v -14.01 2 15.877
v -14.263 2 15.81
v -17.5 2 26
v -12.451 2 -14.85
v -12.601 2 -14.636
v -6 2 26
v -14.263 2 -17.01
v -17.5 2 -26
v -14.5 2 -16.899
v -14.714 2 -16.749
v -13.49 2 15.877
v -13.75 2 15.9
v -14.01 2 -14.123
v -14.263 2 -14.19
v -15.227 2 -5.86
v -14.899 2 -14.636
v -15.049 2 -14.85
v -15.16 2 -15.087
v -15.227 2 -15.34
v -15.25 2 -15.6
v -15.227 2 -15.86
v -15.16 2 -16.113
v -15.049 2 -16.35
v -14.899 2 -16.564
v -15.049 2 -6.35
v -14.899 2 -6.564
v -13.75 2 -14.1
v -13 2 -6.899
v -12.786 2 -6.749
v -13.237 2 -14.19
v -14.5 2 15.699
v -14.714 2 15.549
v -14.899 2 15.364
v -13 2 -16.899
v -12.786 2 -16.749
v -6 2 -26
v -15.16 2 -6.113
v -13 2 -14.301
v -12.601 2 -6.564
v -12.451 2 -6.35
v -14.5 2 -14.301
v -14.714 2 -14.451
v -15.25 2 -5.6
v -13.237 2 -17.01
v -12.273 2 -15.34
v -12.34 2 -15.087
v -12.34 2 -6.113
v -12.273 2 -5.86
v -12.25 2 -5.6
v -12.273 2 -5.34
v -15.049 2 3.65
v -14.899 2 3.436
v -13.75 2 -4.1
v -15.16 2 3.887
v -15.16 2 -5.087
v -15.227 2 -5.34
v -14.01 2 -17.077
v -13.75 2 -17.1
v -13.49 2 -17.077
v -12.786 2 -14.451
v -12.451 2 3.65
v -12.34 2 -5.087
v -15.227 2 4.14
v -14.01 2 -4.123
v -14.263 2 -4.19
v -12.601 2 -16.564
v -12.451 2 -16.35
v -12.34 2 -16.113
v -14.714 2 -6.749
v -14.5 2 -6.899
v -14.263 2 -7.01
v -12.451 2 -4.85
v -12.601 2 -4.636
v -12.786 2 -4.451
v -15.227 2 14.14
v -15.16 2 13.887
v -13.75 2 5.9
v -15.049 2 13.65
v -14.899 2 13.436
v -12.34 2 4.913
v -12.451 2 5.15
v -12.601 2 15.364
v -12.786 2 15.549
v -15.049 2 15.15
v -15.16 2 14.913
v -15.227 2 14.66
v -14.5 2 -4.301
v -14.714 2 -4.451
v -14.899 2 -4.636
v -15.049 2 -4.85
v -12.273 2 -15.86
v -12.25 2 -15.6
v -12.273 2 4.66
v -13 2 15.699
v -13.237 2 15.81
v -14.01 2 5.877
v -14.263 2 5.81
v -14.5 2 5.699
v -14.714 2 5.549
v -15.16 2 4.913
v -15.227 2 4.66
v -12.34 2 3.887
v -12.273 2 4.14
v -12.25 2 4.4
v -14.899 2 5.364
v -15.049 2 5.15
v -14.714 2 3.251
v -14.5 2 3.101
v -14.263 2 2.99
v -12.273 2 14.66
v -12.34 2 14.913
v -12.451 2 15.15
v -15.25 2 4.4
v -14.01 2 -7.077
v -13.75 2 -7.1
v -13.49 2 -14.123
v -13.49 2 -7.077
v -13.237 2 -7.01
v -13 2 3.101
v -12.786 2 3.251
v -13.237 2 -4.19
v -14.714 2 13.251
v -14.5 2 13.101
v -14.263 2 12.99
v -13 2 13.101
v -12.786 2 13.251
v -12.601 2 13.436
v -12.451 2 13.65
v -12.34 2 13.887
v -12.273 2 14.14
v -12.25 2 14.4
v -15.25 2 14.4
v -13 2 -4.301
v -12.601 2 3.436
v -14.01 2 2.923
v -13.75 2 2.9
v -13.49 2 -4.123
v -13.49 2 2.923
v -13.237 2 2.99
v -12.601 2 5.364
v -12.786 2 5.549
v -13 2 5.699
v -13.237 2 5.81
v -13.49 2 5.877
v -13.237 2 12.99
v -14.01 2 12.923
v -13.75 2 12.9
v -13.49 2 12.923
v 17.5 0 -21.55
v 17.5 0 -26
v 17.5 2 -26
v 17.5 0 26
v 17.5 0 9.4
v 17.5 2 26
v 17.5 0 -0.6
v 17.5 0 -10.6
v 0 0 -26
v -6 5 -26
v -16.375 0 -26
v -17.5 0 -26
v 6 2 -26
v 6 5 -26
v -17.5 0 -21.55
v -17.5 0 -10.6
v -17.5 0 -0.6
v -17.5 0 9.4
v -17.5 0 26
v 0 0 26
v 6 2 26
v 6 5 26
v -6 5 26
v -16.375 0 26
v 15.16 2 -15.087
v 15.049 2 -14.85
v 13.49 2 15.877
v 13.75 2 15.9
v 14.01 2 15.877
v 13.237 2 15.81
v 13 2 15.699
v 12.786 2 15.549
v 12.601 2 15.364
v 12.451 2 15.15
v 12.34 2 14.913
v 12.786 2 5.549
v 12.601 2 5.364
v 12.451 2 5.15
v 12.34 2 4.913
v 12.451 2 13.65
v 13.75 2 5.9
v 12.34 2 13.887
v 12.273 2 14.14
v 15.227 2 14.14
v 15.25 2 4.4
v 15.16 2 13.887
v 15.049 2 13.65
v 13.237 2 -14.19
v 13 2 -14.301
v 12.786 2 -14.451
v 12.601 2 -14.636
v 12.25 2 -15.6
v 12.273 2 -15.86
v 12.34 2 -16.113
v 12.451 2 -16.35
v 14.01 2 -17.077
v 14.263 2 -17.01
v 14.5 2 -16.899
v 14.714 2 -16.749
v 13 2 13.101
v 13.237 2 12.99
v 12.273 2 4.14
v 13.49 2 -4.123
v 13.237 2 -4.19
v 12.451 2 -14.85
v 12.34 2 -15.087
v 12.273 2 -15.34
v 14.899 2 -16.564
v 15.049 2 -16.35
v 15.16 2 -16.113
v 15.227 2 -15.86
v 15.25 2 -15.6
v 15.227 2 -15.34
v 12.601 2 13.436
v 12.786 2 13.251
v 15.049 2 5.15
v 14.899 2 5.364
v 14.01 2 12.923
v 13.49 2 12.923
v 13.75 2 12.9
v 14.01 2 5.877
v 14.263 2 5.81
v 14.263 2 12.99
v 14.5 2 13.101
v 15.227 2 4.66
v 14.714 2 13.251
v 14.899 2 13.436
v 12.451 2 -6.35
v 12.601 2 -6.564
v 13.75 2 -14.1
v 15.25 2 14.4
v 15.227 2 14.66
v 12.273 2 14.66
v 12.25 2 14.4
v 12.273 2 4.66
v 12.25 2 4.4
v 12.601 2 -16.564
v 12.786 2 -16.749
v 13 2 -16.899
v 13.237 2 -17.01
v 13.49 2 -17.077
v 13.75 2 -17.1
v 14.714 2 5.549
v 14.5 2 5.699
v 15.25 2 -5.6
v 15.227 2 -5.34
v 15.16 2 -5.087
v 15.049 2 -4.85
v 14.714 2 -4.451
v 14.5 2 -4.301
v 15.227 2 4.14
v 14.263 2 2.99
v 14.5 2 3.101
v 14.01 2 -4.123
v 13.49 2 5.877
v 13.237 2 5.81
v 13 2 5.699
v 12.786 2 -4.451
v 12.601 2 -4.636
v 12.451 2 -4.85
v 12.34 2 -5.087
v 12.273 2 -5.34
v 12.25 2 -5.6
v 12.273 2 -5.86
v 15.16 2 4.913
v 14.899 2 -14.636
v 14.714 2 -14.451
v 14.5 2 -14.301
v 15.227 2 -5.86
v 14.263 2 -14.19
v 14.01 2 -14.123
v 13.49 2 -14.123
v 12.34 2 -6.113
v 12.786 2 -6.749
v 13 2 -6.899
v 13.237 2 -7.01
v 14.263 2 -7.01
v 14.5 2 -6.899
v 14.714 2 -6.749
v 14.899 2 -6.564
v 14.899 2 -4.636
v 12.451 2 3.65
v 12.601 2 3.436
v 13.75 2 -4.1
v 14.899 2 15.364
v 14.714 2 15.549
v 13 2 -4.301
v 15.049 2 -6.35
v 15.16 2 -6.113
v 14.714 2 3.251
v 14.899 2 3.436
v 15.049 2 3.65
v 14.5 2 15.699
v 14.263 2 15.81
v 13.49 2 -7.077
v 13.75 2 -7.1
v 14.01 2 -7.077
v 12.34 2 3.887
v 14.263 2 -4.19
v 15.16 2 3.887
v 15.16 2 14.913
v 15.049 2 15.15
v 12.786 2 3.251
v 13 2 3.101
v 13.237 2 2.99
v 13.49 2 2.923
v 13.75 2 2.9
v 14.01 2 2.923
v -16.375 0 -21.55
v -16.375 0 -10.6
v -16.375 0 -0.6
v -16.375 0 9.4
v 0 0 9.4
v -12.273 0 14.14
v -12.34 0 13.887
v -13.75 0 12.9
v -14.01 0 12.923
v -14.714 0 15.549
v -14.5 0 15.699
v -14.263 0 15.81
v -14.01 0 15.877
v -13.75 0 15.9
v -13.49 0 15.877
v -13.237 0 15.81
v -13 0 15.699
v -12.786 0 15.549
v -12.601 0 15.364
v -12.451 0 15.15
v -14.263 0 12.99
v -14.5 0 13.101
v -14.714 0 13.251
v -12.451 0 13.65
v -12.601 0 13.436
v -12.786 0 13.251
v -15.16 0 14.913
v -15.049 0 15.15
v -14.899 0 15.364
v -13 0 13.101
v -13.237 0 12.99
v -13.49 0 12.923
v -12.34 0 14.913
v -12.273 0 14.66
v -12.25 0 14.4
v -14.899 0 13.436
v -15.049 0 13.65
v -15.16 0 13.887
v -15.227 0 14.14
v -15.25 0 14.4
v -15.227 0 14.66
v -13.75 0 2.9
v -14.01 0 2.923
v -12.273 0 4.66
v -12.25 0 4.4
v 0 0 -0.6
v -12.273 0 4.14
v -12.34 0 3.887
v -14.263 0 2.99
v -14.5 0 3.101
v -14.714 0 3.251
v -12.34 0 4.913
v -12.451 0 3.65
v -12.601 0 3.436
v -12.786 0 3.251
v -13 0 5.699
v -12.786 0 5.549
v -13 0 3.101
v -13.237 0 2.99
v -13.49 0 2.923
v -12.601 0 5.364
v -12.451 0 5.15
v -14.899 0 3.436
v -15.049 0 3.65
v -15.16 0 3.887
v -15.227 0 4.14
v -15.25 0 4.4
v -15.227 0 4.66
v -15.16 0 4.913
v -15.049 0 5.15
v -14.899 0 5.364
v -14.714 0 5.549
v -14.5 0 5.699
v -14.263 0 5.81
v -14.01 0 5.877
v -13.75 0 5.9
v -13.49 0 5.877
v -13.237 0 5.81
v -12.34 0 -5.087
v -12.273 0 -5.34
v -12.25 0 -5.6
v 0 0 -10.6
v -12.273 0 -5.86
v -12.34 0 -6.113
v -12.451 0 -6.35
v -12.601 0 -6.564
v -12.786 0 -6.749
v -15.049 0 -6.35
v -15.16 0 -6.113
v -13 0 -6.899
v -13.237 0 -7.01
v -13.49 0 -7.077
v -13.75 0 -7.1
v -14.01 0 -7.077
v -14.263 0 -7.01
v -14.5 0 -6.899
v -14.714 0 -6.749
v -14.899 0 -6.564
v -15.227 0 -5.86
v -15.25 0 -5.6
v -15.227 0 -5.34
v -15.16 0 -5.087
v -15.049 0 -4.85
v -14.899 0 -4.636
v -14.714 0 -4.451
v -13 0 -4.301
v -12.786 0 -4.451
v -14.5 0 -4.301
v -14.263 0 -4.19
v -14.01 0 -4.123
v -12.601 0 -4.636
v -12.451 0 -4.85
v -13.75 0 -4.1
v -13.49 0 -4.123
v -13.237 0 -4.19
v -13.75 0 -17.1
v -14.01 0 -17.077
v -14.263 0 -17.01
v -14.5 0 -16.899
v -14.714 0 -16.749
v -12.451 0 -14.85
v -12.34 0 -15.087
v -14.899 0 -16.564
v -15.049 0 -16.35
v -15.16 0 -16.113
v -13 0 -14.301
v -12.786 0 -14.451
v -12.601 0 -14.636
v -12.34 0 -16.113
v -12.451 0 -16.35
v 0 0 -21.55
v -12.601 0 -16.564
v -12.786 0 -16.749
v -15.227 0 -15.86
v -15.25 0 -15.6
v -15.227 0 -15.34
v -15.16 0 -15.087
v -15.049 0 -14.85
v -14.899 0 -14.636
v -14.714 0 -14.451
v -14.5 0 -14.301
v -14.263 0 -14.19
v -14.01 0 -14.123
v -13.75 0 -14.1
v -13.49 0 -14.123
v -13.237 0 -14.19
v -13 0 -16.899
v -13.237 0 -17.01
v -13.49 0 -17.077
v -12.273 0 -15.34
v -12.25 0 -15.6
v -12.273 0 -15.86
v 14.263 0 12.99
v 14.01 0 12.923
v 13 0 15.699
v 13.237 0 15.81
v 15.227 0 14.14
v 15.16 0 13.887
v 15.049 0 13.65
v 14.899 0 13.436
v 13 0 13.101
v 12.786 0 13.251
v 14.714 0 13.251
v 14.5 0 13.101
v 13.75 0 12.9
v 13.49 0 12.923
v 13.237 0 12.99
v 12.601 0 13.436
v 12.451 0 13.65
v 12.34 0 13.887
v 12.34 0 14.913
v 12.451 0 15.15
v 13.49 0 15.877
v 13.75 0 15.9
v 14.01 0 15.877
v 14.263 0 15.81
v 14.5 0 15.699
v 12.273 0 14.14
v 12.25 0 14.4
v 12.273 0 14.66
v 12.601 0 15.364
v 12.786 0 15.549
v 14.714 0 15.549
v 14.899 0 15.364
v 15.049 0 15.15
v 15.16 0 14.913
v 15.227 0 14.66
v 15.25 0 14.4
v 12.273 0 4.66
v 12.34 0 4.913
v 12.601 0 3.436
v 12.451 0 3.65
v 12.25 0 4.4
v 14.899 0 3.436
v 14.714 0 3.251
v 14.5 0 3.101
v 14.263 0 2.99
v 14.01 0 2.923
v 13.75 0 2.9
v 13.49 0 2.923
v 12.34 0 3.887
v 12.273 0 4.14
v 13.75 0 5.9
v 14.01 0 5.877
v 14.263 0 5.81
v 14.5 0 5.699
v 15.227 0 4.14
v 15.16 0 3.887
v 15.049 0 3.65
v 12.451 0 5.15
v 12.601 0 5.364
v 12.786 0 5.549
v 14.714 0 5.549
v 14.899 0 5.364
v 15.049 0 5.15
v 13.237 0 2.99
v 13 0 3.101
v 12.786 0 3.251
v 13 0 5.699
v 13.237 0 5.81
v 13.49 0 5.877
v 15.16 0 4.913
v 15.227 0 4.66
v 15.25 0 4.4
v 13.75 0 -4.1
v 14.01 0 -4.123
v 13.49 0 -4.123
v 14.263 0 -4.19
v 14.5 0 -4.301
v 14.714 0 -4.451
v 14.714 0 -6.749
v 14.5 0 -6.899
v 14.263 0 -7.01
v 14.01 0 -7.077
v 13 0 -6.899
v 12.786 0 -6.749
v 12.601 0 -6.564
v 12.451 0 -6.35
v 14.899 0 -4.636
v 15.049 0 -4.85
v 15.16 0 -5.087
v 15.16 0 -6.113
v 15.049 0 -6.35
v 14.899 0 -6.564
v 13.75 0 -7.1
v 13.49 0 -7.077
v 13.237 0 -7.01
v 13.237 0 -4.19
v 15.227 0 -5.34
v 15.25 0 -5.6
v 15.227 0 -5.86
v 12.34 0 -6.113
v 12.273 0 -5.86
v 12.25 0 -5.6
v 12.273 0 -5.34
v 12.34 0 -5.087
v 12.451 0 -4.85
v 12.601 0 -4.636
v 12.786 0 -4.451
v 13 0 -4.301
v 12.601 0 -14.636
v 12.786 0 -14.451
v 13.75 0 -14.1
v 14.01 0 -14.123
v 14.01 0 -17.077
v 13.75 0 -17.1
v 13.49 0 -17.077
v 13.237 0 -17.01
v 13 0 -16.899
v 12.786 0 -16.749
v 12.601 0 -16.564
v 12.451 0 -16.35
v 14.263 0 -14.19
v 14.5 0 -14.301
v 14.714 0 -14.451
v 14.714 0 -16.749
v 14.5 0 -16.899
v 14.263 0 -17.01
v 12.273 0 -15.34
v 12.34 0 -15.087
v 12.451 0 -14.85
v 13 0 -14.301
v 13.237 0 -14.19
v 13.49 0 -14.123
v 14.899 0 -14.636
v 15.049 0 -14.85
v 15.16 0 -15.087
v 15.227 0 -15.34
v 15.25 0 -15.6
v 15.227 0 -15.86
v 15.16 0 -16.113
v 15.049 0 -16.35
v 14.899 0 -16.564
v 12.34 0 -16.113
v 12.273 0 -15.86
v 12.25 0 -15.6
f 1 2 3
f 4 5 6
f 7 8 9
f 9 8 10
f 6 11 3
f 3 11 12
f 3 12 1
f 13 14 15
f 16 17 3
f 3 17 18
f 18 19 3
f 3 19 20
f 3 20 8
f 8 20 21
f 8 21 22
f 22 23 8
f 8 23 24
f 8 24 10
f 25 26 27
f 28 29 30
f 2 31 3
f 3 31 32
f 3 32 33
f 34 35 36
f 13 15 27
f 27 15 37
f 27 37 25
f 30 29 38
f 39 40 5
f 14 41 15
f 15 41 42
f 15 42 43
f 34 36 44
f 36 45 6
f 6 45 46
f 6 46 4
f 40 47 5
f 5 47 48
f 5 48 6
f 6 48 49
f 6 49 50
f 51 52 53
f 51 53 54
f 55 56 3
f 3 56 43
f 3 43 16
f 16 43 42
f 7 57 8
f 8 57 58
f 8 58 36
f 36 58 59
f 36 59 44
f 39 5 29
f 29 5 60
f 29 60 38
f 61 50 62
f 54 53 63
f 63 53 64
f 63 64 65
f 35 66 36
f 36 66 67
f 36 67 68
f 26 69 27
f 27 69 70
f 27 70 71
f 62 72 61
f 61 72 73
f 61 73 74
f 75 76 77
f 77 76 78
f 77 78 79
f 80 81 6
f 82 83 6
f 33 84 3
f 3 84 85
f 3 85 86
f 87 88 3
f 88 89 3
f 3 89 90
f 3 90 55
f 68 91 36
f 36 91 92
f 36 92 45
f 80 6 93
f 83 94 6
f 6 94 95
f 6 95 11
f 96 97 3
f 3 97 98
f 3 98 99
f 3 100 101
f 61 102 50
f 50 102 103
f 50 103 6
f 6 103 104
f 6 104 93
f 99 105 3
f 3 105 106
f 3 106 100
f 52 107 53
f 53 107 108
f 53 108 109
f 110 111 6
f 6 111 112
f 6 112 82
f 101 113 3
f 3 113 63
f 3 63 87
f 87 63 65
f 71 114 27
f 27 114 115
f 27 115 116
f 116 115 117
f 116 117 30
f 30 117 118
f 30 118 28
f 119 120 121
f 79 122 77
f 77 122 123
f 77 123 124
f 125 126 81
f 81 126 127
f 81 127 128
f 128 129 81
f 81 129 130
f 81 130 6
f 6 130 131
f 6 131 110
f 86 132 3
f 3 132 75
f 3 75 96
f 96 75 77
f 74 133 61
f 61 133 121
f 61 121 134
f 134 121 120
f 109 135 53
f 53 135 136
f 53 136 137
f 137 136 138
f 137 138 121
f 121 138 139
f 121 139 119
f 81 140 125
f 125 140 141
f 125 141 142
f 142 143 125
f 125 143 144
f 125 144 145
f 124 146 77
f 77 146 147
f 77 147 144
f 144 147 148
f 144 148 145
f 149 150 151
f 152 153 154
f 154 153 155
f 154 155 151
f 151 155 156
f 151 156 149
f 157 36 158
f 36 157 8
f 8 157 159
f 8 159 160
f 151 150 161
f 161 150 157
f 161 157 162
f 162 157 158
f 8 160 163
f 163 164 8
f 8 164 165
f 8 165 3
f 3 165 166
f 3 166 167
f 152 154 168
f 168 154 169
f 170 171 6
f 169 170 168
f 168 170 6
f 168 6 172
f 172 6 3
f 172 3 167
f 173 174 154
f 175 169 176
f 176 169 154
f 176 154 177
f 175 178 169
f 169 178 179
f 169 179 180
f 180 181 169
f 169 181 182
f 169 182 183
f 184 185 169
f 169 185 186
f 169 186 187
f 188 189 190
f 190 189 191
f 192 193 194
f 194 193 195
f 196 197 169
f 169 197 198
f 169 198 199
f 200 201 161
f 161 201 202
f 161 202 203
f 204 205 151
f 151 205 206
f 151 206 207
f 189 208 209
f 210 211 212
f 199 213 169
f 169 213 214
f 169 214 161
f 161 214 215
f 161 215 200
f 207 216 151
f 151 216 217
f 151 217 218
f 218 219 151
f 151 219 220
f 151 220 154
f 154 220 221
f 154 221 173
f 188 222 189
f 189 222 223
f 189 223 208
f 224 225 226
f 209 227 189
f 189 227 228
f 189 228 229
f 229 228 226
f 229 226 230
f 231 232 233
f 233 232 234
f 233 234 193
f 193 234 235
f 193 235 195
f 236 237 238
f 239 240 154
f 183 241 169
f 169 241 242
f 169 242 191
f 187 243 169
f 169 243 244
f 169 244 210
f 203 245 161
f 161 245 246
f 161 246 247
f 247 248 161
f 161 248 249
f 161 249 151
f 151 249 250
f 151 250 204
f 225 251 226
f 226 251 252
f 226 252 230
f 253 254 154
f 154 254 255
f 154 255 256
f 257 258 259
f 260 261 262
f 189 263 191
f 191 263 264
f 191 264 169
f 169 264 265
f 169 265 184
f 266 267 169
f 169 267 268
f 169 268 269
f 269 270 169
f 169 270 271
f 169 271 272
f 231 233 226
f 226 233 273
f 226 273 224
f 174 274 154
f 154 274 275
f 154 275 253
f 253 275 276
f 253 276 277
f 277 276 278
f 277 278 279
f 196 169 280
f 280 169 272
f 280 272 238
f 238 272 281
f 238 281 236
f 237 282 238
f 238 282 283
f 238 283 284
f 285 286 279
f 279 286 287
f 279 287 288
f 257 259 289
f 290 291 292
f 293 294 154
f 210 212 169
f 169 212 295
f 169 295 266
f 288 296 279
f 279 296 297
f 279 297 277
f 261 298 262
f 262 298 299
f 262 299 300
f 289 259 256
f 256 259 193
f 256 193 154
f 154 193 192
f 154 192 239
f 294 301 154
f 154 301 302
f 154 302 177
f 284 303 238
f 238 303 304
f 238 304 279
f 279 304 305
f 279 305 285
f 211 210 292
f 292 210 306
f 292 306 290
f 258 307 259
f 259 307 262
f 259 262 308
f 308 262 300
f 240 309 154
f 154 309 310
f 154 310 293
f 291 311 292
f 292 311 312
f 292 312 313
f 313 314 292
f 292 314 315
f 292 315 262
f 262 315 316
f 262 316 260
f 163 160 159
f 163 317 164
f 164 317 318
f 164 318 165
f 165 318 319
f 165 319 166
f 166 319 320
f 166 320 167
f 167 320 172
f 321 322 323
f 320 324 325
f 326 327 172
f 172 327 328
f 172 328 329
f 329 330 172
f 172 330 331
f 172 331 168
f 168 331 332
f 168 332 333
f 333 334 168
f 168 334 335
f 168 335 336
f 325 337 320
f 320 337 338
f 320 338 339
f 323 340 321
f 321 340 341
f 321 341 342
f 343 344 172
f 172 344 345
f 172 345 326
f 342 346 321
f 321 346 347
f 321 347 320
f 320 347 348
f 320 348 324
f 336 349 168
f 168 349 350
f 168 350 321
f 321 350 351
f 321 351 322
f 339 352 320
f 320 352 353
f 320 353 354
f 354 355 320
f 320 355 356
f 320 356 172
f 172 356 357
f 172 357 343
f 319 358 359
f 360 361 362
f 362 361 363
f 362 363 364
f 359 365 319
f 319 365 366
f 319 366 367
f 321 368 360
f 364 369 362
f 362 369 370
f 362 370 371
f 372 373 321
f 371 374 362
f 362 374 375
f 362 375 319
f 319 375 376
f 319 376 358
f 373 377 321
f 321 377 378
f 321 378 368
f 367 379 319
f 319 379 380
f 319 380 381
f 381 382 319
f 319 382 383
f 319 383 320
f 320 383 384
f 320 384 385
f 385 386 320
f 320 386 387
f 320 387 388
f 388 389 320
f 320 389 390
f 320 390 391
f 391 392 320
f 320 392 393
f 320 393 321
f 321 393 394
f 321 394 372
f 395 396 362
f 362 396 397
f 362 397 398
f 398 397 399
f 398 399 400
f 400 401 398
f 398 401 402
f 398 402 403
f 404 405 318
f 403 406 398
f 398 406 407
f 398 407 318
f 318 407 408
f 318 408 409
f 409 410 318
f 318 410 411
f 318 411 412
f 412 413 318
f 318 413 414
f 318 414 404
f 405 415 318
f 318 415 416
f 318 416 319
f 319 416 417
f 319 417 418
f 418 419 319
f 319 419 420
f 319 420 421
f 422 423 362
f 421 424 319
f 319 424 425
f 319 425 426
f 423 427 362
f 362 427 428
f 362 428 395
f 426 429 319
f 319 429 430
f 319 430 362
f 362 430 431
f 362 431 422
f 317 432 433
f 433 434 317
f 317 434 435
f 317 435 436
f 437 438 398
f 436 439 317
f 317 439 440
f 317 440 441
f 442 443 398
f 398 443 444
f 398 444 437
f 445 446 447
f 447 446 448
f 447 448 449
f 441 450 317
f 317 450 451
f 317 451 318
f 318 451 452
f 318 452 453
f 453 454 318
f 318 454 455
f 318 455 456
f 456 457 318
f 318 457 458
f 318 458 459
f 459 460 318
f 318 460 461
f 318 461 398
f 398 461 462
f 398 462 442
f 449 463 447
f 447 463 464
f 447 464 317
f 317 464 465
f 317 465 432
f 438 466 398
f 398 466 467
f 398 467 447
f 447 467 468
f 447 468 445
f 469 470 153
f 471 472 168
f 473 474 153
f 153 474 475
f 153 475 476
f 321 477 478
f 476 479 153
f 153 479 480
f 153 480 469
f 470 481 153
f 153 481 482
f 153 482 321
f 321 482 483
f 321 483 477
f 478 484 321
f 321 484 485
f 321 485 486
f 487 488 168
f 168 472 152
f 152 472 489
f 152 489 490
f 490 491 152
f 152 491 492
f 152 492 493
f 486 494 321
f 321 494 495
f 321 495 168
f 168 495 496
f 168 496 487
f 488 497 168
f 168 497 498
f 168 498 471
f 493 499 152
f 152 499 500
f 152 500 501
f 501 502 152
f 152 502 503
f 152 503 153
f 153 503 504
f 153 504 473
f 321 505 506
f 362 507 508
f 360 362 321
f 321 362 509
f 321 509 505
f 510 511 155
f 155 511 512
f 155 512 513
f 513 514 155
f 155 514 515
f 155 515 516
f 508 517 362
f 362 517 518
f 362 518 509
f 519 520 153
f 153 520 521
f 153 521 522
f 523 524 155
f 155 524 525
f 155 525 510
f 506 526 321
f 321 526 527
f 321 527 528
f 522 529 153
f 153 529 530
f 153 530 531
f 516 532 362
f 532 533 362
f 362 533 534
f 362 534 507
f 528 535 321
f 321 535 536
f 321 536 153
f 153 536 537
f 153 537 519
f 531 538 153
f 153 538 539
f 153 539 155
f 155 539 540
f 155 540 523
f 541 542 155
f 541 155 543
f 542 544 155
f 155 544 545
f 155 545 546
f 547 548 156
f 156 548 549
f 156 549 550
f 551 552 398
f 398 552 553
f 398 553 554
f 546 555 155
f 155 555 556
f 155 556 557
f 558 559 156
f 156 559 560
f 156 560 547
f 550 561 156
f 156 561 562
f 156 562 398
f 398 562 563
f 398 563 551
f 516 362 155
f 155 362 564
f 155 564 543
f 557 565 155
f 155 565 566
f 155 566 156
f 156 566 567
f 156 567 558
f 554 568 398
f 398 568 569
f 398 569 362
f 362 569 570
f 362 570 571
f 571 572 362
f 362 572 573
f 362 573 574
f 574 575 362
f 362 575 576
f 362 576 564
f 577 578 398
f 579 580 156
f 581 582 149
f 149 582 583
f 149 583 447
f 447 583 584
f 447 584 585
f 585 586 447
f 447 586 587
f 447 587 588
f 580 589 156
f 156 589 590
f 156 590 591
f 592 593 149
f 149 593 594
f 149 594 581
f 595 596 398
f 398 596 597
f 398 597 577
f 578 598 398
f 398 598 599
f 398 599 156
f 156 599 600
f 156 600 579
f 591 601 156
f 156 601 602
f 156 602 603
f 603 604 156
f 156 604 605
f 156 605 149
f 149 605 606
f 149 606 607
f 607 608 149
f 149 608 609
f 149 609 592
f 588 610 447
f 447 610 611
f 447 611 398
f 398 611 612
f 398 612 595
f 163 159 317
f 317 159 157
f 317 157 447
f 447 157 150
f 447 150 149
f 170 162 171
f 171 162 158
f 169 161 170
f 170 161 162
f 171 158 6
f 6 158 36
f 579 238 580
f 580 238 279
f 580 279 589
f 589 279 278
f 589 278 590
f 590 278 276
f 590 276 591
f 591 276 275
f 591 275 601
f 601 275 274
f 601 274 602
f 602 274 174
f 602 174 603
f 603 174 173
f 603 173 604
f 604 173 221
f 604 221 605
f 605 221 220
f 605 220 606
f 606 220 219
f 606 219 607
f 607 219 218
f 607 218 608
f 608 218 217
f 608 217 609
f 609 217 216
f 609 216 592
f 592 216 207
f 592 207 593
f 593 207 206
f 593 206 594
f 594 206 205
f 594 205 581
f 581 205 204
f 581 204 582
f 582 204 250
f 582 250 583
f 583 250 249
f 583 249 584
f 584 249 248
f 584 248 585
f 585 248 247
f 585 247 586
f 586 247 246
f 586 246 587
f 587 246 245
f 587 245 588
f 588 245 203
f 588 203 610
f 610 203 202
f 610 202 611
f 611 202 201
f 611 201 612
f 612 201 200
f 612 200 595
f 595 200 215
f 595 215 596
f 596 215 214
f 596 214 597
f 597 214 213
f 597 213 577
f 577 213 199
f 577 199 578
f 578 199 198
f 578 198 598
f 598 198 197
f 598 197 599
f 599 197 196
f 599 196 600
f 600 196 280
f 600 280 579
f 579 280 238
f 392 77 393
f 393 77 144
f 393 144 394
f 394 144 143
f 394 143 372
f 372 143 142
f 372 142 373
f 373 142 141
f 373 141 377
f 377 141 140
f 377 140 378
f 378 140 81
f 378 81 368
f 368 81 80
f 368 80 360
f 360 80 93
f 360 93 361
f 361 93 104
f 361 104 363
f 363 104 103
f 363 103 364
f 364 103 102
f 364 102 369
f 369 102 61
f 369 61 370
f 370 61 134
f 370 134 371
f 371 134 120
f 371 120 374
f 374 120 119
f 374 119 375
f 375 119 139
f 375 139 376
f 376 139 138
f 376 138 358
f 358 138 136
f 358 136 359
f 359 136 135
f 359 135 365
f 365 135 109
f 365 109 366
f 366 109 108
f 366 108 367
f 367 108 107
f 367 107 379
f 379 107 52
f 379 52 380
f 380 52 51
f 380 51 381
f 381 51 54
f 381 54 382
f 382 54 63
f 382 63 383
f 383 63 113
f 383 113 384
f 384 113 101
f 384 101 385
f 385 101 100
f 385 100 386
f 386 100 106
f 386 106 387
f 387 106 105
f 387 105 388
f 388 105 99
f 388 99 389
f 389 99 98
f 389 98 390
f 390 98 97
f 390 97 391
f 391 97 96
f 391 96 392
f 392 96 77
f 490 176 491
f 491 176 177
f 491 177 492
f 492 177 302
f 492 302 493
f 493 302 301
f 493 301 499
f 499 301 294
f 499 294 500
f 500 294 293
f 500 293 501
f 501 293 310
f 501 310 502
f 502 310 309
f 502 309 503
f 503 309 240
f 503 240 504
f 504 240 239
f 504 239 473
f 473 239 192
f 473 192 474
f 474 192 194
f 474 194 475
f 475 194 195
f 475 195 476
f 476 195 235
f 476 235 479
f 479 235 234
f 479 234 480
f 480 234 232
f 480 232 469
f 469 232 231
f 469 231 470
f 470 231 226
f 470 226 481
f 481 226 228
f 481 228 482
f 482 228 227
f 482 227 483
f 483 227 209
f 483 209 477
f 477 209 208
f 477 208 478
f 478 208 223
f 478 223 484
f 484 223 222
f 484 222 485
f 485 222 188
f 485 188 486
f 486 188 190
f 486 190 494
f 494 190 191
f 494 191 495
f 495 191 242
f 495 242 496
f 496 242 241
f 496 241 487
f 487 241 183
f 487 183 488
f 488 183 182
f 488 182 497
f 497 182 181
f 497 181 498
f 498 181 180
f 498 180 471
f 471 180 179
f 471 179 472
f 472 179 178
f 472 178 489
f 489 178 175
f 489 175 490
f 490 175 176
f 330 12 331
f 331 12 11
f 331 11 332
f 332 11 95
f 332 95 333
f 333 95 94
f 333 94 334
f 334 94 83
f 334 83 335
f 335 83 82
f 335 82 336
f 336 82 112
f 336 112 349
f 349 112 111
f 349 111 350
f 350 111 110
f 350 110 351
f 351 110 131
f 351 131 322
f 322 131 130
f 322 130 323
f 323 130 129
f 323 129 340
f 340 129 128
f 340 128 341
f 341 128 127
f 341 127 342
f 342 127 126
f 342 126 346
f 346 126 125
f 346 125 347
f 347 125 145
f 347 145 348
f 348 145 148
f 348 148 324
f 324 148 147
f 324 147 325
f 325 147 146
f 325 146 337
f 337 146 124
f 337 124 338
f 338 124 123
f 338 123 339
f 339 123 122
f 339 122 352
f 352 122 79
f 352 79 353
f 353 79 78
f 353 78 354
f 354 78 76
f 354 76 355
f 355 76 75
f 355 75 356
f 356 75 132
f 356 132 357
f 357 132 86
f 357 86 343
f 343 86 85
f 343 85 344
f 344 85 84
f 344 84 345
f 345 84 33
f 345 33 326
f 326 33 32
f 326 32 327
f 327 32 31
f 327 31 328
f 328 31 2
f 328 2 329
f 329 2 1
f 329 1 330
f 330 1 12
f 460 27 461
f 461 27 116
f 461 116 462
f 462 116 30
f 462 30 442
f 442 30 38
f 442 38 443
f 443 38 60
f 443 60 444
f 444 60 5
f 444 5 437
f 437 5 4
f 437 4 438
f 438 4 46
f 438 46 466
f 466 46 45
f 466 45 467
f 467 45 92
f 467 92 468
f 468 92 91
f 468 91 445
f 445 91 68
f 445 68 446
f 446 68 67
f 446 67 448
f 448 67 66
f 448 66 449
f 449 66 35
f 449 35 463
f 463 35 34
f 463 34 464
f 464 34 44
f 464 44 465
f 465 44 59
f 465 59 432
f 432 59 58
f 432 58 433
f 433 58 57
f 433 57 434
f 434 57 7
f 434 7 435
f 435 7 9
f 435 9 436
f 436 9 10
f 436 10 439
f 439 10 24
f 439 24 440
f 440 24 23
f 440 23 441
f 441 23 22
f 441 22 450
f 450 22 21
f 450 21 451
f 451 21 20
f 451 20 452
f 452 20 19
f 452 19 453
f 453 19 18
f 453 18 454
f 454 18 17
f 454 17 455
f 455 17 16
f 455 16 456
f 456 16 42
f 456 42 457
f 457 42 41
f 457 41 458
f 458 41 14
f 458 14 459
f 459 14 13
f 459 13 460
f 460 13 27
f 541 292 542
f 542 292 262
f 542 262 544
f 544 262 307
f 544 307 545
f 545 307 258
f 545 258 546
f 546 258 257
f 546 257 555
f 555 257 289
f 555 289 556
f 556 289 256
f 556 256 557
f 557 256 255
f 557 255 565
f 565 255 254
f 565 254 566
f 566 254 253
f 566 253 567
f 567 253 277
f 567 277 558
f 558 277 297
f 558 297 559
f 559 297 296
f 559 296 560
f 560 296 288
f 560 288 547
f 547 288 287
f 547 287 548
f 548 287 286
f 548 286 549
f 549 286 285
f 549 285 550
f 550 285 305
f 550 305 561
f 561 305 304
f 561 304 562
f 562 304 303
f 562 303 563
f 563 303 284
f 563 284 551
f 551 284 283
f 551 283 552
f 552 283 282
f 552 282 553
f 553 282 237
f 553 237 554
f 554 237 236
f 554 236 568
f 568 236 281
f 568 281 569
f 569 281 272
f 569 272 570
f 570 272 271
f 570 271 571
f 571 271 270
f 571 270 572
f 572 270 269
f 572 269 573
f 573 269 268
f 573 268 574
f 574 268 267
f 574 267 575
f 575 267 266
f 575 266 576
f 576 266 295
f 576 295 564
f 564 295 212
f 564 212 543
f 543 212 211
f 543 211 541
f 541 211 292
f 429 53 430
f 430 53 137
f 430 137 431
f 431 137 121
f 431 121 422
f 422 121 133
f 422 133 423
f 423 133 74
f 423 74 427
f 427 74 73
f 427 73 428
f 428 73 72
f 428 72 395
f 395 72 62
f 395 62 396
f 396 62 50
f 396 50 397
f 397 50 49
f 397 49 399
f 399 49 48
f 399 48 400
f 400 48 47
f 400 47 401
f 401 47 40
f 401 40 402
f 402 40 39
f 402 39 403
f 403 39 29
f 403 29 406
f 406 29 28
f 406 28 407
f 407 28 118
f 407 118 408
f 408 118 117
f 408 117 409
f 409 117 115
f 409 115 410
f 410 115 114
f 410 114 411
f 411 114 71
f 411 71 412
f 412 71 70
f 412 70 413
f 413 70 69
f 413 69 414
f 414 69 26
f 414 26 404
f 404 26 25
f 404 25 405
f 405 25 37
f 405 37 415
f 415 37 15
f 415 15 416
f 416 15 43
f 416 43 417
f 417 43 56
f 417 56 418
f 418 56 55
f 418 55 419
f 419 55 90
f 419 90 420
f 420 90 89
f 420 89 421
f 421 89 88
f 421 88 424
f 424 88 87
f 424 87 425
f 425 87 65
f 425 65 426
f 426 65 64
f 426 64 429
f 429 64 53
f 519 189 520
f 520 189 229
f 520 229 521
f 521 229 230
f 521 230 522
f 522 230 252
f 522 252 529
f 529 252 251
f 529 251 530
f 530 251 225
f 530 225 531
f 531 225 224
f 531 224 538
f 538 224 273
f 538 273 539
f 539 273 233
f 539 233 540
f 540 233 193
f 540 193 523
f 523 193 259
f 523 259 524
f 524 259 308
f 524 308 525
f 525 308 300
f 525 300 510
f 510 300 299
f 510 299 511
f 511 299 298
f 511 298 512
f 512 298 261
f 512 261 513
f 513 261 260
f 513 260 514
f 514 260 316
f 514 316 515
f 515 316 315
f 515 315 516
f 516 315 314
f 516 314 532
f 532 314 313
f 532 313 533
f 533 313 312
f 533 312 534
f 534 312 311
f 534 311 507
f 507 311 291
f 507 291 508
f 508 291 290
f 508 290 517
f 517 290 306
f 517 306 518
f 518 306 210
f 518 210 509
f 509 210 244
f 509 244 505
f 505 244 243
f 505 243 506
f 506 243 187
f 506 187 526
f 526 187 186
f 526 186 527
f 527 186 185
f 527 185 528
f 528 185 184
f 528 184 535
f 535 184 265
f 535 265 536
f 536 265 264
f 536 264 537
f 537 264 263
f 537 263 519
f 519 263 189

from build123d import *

# Parameters (mm, degrees)
SKETCH_1_W                  = 35
SKETCH_1_H                  = 52
EXTRUDE_1_DEPTH             = 2
EXTRUDE_2_REACH             = 33.405
SKETCH_2_W                  = 12
SKETCH_2_H                  = 3
EXTRUDE_2_DIRECTION_2_REACH = 33.405
SKETCH_3_R                  = 1.5
CUT_EXTRUDE_1_DEPTH         = 10


with BuildPart() as part:
    # Эскиз1 → Бобышка-Вытянуть1 (new body)
    with BuildSketch(Plane(origin=(0, 0, 0), x_dir=(1, 0, 0), z_dir=(0, 1, 0))):
        Rectangle(SKETCH_1_W, SKETCH_1_H)
    extrude(amount=EXTRUDE_1_DEPTH)

    # Бобышка-Вытянуть2: up to this face of the body (flat: up to its plane)
    extrude_2_end = Plane(part.part.faces().sort_by_distance((0, 1, 26))[0])
    # Эскиз2 → Бобышка-Вытянуть2 (add, up to the picked face)
    with BuildSketch(Plane.XY, mode=Mode.PRIVATE) as extrude_2_sk1:
        with Locations((0, 3.5)):
            Rectangle(SKETCH_2_W, SKETCH_2_H)
    extrude_2_tool1 = split(extrude(extrude_2_sk1.sketch, amount=EXTRUDE_2_REACH, mode=Mode.PRIVATE), bisect_by=extrude_2_end, keep=Keep.BOTH, mode=Mode.PRIVATE)
    add(extrude_2_tool1.solids().sort_by(Axis((0, 3.5, 0), (0, 0, 1)))[0])

    # Бобышка-Вытянуть2 direction 2: up to this face of the body (flat: up to its plane)
    extrude_2_direction_2_end = Plane(part.part.faces().sort_by_distance((0, 1, -26))[0])
    # Эскиз2 → Бобышка-Вытянуть2 direction 2 (add, up to the picked face)
    with BuildSketch(Plane.XY, mode=Mode.PRIVATE) as extrude_2_direction_2_sk1:
        with Locations((0, 3.5)):
            Rectangle(SKETCH_2_W, SKETCH_2_H)
    extrude_2_direction_2_tool1 = split(extrude(extrude_2_direction_2_sk1.sketch, amount=-EXTRUDE_2_DIRECTION_2_REACH, mode=Mode.PRIVATE), bisect_by=extrude_2_direction_2_end, keep=Keep.BOTH, mode=Mode.PRIVATE)
    add(extrude_2_direction_2_tool1.solids().sort_by(Axis((0, 3.5, 0), (0, 0, -1)))[0])

    # Эскиз3 → Вырез-Вытянуть1 (cut)
    with BuildSketch(Plane(origin=(0, 2, 0), x_dir=(1, 0, 0), z_dir=(0, 1, 0))):
        with Locations(Location((13.75, 15.6, 0), (0, 0, 270))):
            Circle(SKETCH_3_R)
        with Locations(Location((-13.75, 15.6, 0), (0, 0, 270))):
            Circle(SKETCH_3_R)
        with Locations(Location((-13.75, 5.6, 0), (0, 0, 270))):
            Circle(SKETCH_3_R)
        with Locations(Location((13.75, 5.6, 0), (0, 0, 270))):
            Circle(SKETCH_3_R)
        with Locations(Location((-13.75, -4.4, 0), (0, 0, 270))):
            Circle(SKETCH_3_R)
        with Locations(Location((13.75, -4.4, 0), (0, 0, 270))):
            Circle(SKETCH_3_R)
        with Locations(Location((-13.75, -14.4, 0), (0, 0, 270))):
            Circle(SKETCH_3_R)
        with Locations(Location((13.75, -14.4, 0), (0, 0, 270))):
            Circle(SKETCH_3_R)
    extrude(amount=-CUT_EXTRUDE_1_DEPTH, mode=Mode.SUBTRACT)


solid = part.part
